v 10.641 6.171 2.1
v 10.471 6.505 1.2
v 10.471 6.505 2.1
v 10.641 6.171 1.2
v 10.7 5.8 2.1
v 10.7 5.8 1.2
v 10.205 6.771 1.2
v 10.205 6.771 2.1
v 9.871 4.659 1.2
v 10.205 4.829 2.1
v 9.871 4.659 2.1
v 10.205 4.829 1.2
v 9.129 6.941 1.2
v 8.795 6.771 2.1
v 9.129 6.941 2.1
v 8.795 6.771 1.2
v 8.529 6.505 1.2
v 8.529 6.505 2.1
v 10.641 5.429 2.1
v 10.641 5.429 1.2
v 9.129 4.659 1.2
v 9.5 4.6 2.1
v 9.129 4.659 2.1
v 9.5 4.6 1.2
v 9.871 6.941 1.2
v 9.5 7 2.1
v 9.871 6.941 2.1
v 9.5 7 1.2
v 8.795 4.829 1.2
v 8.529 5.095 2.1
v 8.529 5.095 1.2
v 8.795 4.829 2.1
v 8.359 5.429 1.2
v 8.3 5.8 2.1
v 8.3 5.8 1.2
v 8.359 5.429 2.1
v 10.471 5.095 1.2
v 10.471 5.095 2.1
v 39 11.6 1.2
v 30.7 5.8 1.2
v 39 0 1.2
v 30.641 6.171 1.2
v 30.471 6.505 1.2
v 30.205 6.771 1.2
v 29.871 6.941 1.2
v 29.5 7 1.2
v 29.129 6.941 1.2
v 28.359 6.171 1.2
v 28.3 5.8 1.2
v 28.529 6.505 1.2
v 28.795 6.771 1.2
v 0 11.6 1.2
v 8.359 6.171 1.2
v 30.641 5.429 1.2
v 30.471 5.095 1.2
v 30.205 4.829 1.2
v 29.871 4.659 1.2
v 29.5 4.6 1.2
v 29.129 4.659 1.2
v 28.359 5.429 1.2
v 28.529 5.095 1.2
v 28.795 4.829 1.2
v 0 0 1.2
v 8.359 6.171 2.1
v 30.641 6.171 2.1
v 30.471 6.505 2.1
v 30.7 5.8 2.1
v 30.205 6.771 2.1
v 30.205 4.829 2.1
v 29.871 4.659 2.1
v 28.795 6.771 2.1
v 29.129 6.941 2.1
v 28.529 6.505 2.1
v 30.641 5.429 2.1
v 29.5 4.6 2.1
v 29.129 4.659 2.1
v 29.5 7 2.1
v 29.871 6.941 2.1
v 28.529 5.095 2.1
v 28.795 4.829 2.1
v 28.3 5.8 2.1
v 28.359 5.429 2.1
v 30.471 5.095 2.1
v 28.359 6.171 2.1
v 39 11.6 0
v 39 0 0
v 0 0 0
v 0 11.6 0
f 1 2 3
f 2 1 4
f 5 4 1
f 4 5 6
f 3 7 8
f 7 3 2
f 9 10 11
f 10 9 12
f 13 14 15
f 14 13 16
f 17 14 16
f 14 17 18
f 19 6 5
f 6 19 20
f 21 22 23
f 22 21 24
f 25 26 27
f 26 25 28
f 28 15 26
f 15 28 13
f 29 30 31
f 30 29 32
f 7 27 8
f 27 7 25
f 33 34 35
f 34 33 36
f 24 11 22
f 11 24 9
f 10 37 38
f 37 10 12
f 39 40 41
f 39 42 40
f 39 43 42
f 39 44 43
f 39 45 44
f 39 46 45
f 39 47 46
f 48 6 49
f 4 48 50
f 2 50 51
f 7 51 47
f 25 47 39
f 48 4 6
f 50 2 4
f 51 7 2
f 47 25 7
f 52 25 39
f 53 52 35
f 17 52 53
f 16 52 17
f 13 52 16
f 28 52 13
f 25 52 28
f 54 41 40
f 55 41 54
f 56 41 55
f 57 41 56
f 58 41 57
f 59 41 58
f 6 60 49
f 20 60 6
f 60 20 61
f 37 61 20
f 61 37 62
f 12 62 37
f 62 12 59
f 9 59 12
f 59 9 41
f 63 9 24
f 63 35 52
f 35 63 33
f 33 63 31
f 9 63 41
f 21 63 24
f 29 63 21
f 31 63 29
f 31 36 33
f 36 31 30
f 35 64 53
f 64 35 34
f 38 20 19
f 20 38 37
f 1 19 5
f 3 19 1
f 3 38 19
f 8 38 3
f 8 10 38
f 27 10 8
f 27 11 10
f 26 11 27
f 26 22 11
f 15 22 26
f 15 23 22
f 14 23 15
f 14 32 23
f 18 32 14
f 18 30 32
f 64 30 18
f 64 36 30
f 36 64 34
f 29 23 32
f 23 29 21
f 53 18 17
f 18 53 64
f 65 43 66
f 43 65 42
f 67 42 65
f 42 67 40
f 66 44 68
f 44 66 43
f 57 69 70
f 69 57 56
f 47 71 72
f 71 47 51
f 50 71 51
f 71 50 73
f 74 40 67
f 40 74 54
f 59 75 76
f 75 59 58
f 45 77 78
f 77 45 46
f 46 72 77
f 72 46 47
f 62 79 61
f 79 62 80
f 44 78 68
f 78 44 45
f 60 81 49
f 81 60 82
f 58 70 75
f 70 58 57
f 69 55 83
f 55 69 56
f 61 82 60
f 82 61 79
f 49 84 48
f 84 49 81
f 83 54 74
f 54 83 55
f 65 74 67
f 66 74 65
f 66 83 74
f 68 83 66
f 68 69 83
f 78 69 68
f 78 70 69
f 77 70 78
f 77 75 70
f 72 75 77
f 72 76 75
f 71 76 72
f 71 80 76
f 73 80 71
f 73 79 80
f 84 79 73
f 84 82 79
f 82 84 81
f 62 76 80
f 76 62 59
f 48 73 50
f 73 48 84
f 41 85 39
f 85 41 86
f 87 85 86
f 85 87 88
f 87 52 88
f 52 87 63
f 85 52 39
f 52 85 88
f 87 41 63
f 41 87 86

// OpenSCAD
// file: wall-gap-common.scad
// Shared numbers and modules for every wall-gap trim piece. Change a number here and
// re-render all of them. Measurements in mm.
//
// Cross-section (across the strip): 0 is the wall, `gap` is the desk's edge, the strip
// rests `ontop` on the desk beyond that. A `lip` hangs into the gap against the desk's raw
// back edge and takes the #4 screws, 14 mm below the surface. Every end has a pocket on the
// underside, over the gap, for a connector tile (wall-gap-connector.scad) with two press-fit
// pins: butt two pieces together, push a tile up into both pockets, and the joint cannot
// step or bow. The pin holes are blind, so nothing shows on top.

gap   = 29;    // reach from the desk's edge to the wall: design gap 30 minus 1. Set to the smallest measured gap minus 1.
ontop = 12;    // how far it rests on the desk surface
th    = 3;     // plate thickness
lip   = 20;    // lip hanging into the gap
lip_t = 3;
chamf = 1.5;   // chamfer on the two long top edges (never on the ends, so butt joints stay hairlines)
screw = 3.2;   // #4 clearance
csk   = 6.5;
hole_z = -14;  // screw centre below the desk surface: the board's mid-plane

// connector pocket: on the underside of the gap part, at each end
pocket_l = 20; pocket_w = 12; pocket_d = 1.2;
pin_hole = 2.5; pin_depth = 1.0; pin_from_end = 10;
pocket_y = (gap - lip_t) / 2;   // centred across the gap part (between the wall edge and the lip)

module profile() { polygon([[0, 0], [gap + ontop, 0], [gap + ontop, th - chamf], [gap + ontop - chamf, th], [chamf, th], [0, th - chamf]]); }
module lip_holes(xs) { for (x = xs) translate([x, gap - lip_t - 1, hole_z]) rotate([-90, 0, 0]) { cylinder(d = screw, h = lip_t + 2, $fn = 24); translate([0, 0, 1 - 0.01]) cylinder(d1 = csk, d2 = screw, h = (csk - screw) / 2 + 0.01, $fn = 24); } }
// pockets at x = 0 (the start) and x = len (the end) of a piece running along x
module end_pockets(len) {
    for (e = [0, 1]) {
        x0 = e == 0 ? -1 : len - pocket_l;
        translate([x0, pocket_y - pocket_w / 2, -1]) cube([pocket_l + 1, pocket_w, pocket_d + 1]);
        xp = e == 0 ? pin_from_end : len - pin_from_end;
        translate([xp, pocket_y, -1]) cylinder(d = pin_hole, h = pocket_d + pin_depth + 1, $fn = 20);
    }
}
module plain_strip(len) {
    difference() {
        union() {
            rotate([90, 0, 90]) linear_extrude(len) profile();
            translate([0, gap - lip_t, -lip]) cube([len, lip_t, lip]);
        }
        lip_holes(len >= 120 ? [40, len - 40] : [len / 2]);
        end_pockets(len);
    }
}
// main file
// Connector tile for the wall-gap trim. Butt two pieces end to end, then push this up into
// the pockets on their undersides: the two pins press-fit into the pin holes (a drop of CA
// glue if you want it permanent). One per joint; print a couple of spares. Print pins up.

include <wall-gap-common.scad>
tile_l = 2 * pocket_l - 1;   // 39: 1 mm total slack in the two pockets
tile_w = pocket_w - 0.4;
pin_d = pin_hole - 0.1;      // press fit in a printed hole, which comes out slightly small
cube([tile_l, tile_w, pocket_d]);
for (x = [tile_l / 2 - pin_from_end, tile_l / 2 + pin_from_end]) translate([x, tile_w / 2, pocket_d]) cylinder(d = pin_d, h = pin_depth - 0.1, $fn = 20);
